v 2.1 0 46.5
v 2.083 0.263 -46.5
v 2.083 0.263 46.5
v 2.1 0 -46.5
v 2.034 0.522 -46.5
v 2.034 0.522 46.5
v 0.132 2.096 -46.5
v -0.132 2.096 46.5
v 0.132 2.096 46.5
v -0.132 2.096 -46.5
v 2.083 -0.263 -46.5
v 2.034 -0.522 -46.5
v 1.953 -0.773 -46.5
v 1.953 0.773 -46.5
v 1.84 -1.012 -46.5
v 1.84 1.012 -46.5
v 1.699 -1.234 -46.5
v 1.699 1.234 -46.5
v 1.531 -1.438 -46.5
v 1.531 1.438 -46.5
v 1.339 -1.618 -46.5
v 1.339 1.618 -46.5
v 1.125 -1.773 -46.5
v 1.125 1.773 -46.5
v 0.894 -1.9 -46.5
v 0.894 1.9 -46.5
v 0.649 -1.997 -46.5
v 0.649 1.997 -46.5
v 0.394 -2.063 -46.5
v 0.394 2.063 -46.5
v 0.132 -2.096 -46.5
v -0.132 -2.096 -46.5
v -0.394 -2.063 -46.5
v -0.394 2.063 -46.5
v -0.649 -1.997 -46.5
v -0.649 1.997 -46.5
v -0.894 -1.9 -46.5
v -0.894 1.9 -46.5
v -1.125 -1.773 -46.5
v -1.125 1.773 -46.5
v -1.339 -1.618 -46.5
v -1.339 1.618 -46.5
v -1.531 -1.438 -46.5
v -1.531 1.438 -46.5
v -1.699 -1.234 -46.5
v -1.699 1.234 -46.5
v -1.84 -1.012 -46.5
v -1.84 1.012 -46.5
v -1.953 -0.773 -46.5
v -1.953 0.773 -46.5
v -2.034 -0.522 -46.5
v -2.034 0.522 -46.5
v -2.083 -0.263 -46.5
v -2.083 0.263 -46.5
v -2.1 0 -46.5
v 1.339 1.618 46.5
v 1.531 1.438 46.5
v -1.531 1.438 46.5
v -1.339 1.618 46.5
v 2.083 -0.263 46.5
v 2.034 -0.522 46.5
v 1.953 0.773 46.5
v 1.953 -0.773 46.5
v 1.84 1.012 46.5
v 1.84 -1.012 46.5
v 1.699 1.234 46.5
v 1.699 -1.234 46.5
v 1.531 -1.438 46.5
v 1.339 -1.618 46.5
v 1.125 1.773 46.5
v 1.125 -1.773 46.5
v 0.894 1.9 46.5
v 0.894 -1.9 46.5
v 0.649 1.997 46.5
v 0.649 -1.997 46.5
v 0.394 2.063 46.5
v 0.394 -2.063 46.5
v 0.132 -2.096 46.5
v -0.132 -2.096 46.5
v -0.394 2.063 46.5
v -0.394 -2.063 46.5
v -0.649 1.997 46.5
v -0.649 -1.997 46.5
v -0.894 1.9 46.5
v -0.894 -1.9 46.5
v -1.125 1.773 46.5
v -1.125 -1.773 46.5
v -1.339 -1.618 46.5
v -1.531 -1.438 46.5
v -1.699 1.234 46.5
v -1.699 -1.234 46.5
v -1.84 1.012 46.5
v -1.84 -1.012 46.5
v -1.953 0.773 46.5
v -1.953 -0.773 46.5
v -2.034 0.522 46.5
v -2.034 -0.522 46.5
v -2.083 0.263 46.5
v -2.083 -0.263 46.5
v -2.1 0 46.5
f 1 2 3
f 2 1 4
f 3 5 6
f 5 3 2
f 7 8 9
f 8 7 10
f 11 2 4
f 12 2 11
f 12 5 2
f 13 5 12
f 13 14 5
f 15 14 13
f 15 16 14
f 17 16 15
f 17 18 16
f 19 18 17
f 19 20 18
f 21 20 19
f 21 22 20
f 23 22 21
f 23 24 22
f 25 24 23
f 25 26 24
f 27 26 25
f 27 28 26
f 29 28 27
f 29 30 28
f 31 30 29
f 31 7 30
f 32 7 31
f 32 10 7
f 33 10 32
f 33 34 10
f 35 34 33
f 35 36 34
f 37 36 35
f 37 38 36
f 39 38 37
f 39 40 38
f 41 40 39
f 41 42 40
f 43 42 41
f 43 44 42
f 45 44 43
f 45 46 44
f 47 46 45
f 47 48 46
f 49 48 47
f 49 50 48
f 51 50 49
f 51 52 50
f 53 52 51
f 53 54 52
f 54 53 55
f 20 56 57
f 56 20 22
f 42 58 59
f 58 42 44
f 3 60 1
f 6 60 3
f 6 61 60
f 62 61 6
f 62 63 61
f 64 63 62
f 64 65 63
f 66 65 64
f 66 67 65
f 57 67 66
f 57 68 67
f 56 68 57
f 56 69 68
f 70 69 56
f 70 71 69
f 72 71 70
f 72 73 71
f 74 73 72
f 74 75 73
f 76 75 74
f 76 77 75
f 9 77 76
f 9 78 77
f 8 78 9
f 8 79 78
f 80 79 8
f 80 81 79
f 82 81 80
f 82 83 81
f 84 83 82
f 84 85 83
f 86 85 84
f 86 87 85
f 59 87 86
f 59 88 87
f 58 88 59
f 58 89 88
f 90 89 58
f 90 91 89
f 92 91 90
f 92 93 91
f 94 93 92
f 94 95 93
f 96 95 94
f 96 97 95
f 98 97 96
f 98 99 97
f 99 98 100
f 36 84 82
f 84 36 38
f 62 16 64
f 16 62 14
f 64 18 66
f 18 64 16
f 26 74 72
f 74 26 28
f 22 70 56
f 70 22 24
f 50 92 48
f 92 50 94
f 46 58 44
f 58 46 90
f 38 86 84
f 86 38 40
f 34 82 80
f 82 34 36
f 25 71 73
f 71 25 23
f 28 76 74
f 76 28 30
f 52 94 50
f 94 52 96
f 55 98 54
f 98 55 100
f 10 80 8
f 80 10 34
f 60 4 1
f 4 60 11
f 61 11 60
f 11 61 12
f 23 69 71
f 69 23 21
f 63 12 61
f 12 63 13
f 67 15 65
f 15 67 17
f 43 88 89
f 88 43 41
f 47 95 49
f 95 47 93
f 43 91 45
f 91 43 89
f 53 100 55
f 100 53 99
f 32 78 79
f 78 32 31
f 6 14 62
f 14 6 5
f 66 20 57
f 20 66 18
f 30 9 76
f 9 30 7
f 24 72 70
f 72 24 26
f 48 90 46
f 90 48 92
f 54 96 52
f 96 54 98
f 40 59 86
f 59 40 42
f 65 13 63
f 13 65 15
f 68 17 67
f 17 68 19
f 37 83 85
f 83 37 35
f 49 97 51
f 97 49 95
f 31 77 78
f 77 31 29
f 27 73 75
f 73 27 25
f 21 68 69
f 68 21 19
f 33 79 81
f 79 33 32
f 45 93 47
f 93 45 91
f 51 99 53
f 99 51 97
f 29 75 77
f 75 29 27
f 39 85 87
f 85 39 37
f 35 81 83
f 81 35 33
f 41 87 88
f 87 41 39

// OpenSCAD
$fn = 50;


difference() {
	union() {
		translate(v = [0, 0, -46.5000000000]) {
			cylinder(h = 93, r = 2.1000000000);
		}
	}
	union() {
		translate(v = [0, 0, -100.0000000000]) {
			cylinder(h = 200, r = 0);
		}
	}
}
